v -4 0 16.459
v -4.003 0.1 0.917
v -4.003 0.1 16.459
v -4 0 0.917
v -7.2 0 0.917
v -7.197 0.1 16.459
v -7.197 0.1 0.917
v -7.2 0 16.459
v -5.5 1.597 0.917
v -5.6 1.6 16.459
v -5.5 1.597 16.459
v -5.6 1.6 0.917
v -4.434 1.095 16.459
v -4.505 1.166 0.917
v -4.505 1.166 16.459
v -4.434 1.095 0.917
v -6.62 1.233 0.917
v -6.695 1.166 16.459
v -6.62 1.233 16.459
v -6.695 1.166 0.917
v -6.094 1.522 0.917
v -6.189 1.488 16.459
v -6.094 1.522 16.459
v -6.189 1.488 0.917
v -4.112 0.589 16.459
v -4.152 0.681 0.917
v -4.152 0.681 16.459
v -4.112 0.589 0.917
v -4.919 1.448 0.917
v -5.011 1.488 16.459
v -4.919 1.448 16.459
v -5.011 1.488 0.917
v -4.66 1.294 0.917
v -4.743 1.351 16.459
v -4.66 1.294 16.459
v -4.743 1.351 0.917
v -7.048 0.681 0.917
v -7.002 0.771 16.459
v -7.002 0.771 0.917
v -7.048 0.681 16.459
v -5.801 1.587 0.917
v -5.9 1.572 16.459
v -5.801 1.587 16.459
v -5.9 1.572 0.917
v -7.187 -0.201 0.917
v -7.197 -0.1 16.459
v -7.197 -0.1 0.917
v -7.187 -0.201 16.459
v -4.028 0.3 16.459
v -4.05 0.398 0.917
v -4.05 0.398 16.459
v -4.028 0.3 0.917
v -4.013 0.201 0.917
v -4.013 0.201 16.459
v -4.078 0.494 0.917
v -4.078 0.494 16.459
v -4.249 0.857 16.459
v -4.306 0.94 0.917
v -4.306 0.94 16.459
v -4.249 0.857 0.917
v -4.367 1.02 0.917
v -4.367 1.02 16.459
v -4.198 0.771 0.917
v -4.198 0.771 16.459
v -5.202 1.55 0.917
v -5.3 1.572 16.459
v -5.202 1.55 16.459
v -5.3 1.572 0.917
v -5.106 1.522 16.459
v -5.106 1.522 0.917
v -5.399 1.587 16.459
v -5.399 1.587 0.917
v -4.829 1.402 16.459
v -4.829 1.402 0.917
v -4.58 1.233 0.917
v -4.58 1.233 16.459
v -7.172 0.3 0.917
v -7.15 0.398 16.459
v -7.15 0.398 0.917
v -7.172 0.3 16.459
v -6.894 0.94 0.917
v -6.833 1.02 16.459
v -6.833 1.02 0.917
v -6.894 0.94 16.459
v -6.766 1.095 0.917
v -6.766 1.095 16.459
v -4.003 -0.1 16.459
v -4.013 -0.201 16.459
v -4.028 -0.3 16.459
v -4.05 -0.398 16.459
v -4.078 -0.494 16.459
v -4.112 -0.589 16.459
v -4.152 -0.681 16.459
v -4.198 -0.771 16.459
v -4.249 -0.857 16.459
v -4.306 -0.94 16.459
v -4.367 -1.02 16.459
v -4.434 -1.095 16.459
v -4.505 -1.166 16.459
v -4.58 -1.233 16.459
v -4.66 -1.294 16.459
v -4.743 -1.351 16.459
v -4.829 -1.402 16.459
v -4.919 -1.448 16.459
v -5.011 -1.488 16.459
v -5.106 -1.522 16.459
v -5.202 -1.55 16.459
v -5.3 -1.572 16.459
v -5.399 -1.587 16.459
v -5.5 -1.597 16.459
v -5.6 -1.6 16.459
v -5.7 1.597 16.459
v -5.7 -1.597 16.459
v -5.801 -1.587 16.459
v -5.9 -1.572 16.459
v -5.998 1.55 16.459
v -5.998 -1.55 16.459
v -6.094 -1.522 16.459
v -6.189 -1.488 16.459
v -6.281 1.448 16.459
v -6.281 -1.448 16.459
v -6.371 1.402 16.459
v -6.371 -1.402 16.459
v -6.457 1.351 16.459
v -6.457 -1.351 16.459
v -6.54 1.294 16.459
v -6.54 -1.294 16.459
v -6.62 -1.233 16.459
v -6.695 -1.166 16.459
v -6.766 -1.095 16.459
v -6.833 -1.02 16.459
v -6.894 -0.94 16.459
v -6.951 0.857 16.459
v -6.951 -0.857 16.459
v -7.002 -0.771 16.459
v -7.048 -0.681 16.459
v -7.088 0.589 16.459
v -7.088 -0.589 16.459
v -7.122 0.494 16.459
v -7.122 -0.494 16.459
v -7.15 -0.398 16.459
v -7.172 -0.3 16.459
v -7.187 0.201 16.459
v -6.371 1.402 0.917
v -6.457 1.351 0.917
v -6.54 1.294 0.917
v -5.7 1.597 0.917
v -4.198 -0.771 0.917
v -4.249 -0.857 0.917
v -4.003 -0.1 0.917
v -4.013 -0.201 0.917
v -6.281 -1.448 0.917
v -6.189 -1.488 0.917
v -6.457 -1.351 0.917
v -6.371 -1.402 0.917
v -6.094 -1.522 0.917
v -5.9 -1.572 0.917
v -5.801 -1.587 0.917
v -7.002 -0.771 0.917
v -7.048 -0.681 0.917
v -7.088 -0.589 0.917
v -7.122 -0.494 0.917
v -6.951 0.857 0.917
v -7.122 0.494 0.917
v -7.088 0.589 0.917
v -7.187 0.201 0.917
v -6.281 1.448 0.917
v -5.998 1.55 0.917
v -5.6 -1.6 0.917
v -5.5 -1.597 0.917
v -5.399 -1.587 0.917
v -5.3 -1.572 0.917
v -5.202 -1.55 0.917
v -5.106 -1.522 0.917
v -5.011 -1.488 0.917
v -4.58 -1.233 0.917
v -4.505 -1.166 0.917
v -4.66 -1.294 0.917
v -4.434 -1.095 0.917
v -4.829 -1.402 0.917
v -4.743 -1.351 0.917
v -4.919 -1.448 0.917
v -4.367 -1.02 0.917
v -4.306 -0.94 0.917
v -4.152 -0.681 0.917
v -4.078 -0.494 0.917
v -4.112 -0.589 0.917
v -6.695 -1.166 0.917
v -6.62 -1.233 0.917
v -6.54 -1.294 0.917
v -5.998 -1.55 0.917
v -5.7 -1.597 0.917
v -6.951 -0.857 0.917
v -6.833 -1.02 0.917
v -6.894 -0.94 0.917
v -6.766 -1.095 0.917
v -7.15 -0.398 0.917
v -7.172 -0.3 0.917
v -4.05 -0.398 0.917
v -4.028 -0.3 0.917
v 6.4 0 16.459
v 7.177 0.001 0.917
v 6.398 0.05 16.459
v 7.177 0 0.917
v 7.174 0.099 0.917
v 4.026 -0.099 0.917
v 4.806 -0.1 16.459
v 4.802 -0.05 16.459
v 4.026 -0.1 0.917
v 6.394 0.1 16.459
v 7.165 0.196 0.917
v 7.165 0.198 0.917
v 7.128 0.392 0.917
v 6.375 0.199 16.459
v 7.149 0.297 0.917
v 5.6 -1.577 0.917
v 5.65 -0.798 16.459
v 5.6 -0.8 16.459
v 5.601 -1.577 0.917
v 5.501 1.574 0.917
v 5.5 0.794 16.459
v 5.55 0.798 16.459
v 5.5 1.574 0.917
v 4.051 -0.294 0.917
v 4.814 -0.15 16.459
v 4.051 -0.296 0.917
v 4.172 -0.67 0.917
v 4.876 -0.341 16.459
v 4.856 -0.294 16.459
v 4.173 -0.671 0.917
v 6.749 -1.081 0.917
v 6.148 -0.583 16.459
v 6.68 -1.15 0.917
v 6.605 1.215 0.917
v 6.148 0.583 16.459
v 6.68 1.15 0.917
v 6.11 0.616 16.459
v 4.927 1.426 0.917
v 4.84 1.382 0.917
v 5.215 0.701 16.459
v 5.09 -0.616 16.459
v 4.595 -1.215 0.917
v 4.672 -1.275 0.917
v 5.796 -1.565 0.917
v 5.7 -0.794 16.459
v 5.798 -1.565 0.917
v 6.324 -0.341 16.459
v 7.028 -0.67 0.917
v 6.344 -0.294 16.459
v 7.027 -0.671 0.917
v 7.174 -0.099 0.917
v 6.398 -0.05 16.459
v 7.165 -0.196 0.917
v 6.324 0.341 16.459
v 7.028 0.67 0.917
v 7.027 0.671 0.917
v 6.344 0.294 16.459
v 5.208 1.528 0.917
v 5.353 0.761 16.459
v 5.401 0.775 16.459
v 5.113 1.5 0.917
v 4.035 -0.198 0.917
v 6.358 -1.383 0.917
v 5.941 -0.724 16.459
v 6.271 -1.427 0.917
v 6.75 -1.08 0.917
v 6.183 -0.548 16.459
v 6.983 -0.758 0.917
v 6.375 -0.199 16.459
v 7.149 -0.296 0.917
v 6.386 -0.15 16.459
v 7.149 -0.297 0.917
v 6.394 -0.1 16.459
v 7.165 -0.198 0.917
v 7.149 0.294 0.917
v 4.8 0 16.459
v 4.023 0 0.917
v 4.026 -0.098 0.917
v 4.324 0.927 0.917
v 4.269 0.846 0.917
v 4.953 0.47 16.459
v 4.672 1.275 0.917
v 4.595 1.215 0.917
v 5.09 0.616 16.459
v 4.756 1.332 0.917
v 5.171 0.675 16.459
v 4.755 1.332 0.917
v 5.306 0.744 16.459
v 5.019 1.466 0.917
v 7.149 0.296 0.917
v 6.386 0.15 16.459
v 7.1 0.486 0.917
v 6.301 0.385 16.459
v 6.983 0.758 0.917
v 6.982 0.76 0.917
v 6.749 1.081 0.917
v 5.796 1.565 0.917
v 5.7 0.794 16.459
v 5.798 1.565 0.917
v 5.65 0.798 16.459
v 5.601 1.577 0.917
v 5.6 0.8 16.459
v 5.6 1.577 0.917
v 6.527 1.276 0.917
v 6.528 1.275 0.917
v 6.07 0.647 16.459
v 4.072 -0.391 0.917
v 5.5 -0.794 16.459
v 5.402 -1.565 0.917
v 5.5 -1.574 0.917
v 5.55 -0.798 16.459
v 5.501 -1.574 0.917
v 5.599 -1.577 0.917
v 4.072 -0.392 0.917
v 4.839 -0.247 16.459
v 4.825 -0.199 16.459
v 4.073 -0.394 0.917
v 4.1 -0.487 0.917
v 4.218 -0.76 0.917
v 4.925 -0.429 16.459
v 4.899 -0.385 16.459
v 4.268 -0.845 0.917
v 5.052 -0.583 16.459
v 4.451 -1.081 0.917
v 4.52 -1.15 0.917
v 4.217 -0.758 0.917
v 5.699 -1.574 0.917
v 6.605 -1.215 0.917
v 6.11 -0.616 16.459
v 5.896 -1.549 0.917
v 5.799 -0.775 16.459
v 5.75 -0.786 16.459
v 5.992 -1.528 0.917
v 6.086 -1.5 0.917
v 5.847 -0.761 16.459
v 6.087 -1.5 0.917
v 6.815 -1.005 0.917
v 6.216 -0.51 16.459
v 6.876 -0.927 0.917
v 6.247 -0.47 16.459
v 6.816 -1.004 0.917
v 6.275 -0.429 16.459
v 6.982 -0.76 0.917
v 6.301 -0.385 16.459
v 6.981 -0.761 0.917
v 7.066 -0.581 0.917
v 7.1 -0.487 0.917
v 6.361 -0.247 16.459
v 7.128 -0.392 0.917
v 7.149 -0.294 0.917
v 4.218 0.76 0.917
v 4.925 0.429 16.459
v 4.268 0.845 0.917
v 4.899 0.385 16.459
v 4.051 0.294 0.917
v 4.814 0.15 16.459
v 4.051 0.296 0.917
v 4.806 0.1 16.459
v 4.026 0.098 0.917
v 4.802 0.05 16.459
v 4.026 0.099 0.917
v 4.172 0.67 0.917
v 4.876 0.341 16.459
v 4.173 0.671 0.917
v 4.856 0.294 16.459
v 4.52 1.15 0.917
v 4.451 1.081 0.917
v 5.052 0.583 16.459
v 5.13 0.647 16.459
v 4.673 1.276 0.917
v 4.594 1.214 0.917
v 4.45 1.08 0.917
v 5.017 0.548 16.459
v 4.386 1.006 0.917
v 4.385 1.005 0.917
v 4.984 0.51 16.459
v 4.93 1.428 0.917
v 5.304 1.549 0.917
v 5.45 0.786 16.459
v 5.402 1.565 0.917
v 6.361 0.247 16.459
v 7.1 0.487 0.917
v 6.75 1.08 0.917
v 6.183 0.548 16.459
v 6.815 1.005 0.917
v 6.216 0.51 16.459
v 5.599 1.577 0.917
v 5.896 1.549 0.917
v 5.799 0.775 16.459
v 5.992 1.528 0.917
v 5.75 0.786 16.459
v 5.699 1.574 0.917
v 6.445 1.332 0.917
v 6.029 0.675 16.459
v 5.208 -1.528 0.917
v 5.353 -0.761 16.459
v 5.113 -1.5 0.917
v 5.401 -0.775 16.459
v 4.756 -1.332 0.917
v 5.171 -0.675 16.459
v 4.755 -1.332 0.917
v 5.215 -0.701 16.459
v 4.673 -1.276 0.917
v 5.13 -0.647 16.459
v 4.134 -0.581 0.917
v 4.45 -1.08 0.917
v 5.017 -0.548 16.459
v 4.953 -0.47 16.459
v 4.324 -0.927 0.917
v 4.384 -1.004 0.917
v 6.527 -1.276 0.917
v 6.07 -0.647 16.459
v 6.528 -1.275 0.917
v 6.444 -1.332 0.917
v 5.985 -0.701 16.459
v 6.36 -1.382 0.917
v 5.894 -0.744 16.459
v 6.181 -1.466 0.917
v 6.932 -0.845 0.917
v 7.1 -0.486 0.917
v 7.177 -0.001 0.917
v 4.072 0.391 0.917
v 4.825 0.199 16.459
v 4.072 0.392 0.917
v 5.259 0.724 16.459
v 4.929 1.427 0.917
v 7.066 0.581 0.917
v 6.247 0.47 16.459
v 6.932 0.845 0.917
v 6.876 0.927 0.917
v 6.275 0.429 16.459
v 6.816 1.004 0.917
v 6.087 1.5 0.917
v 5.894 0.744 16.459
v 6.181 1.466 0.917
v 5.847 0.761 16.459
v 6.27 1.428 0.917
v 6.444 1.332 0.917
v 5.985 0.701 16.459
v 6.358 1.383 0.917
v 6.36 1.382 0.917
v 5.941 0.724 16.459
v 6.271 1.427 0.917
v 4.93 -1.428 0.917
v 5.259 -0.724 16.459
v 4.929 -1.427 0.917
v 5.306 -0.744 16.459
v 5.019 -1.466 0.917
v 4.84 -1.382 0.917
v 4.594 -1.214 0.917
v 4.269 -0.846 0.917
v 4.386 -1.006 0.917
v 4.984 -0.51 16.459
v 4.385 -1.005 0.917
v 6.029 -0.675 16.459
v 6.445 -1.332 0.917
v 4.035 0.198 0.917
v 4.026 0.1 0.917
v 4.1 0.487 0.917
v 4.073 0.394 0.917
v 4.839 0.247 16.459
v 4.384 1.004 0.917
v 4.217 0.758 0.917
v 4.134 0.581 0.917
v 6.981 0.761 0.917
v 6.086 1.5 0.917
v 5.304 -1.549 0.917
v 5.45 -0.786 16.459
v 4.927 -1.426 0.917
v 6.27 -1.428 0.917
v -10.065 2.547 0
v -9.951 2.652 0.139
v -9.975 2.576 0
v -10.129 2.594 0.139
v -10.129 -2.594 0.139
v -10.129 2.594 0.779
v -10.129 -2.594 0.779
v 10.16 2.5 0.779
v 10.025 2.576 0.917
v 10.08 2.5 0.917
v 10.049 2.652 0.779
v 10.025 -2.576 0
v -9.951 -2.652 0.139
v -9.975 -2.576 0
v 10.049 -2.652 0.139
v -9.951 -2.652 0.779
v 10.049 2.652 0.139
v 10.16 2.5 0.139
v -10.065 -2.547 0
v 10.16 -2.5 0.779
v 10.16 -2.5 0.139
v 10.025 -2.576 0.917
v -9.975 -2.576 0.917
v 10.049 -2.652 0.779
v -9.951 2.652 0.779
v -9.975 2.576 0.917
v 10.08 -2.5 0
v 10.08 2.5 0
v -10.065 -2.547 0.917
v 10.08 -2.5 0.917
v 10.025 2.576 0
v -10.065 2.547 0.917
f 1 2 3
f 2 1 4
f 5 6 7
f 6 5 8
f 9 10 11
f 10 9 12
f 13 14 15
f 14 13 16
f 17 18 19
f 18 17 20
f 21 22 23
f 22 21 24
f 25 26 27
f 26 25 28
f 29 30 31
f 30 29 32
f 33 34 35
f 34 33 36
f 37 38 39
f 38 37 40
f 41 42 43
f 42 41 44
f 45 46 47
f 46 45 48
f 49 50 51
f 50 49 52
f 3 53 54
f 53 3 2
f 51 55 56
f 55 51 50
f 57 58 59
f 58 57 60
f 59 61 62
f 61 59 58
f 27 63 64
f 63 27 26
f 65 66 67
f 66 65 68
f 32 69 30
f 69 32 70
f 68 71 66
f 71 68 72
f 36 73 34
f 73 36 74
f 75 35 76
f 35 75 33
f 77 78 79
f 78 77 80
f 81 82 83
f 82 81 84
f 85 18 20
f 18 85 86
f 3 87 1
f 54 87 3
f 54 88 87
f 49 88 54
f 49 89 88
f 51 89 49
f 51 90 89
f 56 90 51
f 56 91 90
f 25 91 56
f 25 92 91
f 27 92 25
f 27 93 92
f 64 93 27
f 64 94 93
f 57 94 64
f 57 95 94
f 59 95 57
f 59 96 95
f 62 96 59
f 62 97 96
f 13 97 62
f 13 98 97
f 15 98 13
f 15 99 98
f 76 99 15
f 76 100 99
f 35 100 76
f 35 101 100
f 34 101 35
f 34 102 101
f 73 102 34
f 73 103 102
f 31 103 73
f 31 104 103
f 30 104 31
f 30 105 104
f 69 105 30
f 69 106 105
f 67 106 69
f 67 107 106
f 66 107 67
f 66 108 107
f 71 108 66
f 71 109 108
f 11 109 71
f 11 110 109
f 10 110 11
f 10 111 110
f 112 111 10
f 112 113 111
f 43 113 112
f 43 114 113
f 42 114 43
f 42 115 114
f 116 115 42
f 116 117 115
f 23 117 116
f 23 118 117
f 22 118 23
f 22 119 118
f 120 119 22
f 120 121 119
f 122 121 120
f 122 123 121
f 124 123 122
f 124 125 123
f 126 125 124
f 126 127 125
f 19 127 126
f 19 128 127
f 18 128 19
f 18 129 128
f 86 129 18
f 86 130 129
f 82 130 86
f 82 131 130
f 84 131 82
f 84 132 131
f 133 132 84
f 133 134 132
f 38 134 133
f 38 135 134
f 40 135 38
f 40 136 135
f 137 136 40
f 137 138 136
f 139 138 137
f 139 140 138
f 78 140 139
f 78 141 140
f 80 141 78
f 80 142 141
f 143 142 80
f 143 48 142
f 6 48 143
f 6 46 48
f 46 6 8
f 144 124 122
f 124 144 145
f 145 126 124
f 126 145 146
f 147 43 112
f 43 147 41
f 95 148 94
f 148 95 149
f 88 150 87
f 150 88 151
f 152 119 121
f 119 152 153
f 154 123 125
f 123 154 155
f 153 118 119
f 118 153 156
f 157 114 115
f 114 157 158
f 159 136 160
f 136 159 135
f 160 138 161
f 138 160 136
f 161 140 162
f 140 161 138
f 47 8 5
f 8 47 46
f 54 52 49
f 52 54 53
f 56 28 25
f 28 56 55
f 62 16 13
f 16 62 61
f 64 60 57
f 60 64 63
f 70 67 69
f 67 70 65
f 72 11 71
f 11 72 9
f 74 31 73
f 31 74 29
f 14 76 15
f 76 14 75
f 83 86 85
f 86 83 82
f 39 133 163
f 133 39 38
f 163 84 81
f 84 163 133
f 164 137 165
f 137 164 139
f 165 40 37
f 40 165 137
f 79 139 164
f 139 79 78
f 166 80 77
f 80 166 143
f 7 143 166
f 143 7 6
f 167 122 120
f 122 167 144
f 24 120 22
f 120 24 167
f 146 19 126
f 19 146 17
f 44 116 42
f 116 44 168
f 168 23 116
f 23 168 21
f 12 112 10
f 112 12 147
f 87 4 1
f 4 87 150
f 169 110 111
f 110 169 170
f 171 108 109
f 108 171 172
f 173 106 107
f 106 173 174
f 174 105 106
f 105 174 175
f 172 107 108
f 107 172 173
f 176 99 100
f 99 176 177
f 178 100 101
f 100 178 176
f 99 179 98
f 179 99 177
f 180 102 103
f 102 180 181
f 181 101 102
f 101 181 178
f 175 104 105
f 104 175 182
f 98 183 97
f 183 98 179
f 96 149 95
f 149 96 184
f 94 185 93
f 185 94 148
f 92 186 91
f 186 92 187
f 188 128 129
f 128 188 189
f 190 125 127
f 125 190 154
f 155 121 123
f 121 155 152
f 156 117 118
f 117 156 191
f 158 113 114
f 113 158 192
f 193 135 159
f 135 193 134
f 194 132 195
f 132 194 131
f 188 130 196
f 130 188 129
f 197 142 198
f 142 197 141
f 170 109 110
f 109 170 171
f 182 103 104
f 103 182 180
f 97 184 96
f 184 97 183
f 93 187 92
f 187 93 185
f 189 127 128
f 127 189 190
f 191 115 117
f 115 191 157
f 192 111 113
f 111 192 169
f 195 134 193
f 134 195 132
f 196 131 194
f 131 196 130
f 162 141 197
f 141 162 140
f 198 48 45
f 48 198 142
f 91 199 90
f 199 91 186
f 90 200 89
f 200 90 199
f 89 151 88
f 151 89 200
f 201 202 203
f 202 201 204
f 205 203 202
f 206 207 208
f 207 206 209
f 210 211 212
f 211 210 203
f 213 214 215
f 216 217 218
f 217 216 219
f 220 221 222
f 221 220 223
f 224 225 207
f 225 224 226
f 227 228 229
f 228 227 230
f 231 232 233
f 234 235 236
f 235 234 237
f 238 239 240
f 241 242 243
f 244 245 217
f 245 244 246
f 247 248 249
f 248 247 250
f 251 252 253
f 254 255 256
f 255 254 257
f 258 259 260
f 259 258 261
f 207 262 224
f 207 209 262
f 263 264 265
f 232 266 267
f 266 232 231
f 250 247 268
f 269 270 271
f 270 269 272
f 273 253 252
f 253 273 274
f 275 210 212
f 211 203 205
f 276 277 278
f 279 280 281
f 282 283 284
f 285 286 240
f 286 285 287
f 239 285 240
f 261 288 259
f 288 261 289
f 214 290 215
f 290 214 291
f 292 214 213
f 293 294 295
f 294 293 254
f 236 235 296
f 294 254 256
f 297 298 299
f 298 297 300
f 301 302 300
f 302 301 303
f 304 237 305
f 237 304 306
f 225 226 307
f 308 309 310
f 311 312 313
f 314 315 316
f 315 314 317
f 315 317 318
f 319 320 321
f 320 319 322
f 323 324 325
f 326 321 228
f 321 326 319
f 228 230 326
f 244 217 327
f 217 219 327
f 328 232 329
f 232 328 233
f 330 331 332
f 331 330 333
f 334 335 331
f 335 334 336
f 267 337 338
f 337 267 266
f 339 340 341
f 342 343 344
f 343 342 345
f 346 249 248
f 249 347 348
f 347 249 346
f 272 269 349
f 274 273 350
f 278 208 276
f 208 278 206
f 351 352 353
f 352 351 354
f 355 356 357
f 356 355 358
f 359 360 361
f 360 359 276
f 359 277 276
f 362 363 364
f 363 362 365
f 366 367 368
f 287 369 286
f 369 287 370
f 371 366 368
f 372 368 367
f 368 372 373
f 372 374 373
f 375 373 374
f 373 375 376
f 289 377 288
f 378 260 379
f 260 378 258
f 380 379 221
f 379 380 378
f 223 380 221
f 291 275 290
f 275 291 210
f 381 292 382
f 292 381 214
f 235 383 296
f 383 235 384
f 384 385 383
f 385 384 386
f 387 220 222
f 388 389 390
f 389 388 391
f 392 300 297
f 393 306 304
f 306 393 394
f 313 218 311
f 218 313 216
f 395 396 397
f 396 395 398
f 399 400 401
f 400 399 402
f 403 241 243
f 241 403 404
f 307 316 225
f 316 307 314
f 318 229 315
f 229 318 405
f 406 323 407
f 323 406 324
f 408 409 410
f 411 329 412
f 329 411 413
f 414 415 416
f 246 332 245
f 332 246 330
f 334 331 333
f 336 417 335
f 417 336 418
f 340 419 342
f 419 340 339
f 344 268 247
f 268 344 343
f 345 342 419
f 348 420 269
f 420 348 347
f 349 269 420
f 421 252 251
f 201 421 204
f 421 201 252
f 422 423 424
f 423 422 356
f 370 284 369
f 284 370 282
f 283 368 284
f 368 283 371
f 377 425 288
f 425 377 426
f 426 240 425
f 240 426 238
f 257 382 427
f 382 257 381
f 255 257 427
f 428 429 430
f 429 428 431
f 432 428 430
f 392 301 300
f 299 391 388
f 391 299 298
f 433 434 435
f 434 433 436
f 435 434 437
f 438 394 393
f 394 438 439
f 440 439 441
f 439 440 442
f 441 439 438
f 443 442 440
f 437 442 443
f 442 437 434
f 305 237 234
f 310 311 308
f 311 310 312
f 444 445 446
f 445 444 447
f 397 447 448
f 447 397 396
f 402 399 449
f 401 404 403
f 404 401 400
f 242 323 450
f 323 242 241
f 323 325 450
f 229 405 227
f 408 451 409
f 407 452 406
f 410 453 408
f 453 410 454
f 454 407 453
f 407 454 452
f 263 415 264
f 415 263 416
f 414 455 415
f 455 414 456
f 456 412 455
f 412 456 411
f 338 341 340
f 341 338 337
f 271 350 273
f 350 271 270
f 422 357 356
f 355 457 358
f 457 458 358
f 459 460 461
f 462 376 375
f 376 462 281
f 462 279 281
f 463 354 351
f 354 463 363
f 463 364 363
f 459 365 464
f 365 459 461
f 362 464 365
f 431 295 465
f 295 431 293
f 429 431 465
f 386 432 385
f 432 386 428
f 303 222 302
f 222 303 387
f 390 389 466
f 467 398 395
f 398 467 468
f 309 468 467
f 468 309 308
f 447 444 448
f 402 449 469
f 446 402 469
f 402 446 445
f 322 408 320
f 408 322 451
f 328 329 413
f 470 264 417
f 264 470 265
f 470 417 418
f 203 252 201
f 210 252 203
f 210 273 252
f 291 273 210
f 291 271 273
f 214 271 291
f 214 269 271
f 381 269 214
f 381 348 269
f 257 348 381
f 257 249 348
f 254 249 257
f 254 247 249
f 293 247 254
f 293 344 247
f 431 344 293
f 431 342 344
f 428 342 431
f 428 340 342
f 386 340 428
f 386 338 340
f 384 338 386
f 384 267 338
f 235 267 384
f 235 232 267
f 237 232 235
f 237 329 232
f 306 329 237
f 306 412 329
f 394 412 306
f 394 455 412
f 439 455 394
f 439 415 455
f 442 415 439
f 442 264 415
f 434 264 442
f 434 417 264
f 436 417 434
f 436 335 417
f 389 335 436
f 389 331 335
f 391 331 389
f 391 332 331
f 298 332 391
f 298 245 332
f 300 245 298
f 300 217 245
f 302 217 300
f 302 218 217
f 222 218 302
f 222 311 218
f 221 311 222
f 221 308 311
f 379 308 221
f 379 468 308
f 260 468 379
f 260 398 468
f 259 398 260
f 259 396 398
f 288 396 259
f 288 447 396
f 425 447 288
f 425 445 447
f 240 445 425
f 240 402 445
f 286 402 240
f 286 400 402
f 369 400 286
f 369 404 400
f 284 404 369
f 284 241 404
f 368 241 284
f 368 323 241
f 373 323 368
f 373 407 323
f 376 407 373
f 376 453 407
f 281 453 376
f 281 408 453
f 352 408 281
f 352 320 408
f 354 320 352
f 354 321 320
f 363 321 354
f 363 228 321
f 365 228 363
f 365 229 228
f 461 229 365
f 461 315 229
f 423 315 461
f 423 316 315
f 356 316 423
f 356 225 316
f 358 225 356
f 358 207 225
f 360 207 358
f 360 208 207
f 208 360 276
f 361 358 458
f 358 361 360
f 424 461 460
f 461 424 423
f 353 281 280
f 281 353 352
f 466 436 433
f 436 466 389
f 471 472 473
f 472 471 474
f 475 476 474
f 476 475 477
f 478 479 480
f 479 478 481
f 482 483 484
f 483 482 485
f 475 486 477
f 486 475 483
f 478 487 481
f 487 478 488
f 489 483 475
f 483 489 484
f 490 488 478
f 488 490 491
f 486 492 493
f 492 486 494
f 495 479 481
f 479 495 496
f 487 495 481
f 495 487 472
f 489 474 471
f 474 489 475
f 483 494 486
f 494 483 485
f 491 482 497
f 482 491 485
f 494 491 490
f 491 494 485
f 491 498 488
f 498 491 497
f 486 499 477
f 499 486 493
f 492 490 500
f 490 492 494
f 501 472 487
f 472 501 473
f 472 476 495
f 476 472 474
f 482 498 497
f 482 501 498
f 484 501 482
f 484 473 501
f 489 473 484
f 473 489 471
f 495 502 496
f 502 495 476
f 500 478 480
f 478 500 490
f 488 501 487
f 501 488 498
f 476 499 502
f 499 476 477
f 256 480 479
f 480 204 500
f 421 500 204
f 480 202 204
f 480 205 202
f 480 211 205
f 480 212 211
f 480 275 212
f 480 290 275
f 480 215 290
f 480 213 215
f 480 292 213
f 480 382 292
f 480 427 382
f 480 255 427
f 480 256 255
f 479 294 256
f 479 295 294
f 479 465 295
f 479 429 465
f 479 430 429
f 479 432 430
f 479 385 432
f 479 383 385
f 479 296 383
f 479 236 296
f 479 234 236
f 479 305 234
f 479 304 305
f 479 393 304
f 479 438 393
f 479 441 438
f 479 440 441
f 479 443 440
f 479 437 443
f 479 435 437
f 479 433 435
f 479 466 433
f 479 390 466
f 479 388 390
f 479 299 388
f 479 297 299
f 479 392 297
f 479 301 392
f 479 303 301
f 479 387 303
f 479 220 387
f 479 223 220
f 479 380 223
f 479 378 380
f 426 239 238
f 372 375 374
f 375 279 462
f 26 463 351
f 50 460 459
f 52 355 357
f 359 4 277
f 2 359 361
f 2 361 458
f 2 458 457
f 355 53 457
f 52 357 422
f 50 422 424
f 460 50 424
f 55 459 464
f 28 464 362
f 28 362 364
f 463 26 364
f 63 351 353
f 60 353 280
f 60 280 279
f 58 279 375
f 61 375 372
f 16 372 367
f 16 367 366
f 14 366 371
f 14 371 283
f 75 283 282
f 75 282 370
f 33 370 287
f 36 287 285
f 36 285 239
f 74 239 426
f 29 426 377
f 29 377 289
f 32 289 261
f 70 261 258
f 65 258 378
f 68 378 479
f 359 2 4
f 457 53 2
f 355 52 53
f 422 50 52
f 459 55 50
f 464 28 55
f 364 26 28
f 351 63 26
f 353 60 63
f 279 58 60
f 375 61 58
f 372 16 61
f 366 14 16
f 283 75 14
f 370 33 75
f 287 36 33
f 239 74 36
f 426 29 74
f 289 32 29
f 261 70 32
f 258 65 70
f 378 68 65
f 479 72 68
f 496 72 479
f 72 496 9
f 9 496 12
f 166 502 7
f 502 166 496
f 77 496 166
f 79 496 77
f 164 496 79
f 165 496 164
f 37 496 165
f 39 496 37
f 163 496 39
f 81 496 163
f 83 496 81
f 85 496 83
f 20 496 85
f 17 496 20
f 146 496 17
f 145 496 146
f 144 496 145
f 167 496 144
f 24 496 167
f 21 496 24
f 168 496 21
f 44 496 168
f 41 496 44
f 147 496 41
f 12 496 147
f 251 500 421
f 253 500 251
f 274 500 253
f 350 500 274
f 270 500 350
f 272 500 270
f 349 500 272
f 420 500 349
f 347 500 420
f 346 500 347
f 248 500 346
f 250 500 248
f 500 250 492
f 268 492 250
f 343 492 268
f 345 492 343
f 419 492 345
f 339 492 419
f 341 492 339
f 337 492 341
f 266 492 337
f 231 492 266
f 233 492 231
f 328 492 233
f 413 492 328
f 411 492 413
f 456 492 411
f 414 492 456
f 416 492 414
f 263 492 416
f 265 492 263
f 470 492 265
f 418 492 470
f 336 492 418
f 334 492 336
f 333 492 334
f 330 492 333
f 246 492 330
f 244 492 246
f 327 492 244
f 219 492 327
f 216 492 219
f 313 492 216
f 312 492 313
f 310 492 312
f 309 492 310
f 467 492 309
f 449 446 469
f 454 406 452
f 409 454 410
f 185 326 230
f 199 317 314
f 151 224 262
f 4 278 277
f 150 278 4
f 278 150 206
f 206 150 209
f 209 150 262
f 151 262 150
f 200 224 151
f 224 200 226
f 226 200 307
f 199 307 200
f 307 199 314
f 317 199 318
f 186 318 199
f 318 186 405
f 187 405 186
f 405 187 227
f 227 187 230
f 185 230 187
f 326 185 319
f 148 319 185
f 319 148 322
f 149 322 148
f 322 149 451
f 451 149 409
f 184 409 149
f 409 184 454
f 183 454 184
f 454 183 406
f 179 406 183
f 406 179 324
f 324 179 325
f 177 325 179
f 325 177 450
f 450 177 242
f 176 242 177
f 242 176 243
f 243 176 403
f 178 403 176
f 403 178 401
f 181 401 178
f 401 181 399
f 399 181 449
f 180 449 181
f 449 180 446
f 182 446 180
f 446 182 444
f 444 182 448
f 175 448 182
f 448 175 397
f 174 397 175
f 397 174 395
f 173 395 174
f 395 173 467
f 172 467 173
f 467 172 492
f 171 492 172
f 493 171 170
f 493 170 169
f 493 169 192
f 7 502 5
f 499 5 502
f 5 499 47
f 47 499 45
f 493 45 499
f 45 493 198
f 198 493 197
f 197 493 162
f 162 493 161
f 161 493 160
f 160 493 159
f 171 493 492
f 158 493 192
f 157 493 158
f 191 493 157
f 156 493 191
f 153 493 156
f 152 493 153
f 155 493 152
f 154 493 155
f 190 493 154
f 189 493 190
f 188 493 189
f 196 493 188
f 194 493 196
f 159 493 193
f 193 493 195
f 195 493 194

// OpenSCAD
//---------------------------
// Test Retract by 5@xes
//---------------------------

$fn=100;

Hc=0.16; // Layer Height
Line_Width = 0.4; // line Width

cylinder_size = 4*Line_Width;
cylinder_height = 100*Hc;

translate([0, 0, 3*Hc-0.0214]) Model();

module Model() {
    union() {
      Base();
      Etage();
    } 
}

module Base() {
    minkowski() {
    cube([20,5,4*Hc], center = true);
    //cylinder(r=1,h=Hc, center = false);
        sphere(Hc,$fn=5);
    }
}

module Etage() {
    difference() {
        union() {
            // First pilar
            translate([-3.5*cylinder_size, 0, 0])  cylinder(cylinder_height,cylinder_size,cylinder_size, center = false);
            
            // Second pilar
            translate([3.5*cylinder_size, 0, 0])  cylinder(cylinder_height,cylinder_size,2*Line_Width, center = false);
  
        }
    }
}
